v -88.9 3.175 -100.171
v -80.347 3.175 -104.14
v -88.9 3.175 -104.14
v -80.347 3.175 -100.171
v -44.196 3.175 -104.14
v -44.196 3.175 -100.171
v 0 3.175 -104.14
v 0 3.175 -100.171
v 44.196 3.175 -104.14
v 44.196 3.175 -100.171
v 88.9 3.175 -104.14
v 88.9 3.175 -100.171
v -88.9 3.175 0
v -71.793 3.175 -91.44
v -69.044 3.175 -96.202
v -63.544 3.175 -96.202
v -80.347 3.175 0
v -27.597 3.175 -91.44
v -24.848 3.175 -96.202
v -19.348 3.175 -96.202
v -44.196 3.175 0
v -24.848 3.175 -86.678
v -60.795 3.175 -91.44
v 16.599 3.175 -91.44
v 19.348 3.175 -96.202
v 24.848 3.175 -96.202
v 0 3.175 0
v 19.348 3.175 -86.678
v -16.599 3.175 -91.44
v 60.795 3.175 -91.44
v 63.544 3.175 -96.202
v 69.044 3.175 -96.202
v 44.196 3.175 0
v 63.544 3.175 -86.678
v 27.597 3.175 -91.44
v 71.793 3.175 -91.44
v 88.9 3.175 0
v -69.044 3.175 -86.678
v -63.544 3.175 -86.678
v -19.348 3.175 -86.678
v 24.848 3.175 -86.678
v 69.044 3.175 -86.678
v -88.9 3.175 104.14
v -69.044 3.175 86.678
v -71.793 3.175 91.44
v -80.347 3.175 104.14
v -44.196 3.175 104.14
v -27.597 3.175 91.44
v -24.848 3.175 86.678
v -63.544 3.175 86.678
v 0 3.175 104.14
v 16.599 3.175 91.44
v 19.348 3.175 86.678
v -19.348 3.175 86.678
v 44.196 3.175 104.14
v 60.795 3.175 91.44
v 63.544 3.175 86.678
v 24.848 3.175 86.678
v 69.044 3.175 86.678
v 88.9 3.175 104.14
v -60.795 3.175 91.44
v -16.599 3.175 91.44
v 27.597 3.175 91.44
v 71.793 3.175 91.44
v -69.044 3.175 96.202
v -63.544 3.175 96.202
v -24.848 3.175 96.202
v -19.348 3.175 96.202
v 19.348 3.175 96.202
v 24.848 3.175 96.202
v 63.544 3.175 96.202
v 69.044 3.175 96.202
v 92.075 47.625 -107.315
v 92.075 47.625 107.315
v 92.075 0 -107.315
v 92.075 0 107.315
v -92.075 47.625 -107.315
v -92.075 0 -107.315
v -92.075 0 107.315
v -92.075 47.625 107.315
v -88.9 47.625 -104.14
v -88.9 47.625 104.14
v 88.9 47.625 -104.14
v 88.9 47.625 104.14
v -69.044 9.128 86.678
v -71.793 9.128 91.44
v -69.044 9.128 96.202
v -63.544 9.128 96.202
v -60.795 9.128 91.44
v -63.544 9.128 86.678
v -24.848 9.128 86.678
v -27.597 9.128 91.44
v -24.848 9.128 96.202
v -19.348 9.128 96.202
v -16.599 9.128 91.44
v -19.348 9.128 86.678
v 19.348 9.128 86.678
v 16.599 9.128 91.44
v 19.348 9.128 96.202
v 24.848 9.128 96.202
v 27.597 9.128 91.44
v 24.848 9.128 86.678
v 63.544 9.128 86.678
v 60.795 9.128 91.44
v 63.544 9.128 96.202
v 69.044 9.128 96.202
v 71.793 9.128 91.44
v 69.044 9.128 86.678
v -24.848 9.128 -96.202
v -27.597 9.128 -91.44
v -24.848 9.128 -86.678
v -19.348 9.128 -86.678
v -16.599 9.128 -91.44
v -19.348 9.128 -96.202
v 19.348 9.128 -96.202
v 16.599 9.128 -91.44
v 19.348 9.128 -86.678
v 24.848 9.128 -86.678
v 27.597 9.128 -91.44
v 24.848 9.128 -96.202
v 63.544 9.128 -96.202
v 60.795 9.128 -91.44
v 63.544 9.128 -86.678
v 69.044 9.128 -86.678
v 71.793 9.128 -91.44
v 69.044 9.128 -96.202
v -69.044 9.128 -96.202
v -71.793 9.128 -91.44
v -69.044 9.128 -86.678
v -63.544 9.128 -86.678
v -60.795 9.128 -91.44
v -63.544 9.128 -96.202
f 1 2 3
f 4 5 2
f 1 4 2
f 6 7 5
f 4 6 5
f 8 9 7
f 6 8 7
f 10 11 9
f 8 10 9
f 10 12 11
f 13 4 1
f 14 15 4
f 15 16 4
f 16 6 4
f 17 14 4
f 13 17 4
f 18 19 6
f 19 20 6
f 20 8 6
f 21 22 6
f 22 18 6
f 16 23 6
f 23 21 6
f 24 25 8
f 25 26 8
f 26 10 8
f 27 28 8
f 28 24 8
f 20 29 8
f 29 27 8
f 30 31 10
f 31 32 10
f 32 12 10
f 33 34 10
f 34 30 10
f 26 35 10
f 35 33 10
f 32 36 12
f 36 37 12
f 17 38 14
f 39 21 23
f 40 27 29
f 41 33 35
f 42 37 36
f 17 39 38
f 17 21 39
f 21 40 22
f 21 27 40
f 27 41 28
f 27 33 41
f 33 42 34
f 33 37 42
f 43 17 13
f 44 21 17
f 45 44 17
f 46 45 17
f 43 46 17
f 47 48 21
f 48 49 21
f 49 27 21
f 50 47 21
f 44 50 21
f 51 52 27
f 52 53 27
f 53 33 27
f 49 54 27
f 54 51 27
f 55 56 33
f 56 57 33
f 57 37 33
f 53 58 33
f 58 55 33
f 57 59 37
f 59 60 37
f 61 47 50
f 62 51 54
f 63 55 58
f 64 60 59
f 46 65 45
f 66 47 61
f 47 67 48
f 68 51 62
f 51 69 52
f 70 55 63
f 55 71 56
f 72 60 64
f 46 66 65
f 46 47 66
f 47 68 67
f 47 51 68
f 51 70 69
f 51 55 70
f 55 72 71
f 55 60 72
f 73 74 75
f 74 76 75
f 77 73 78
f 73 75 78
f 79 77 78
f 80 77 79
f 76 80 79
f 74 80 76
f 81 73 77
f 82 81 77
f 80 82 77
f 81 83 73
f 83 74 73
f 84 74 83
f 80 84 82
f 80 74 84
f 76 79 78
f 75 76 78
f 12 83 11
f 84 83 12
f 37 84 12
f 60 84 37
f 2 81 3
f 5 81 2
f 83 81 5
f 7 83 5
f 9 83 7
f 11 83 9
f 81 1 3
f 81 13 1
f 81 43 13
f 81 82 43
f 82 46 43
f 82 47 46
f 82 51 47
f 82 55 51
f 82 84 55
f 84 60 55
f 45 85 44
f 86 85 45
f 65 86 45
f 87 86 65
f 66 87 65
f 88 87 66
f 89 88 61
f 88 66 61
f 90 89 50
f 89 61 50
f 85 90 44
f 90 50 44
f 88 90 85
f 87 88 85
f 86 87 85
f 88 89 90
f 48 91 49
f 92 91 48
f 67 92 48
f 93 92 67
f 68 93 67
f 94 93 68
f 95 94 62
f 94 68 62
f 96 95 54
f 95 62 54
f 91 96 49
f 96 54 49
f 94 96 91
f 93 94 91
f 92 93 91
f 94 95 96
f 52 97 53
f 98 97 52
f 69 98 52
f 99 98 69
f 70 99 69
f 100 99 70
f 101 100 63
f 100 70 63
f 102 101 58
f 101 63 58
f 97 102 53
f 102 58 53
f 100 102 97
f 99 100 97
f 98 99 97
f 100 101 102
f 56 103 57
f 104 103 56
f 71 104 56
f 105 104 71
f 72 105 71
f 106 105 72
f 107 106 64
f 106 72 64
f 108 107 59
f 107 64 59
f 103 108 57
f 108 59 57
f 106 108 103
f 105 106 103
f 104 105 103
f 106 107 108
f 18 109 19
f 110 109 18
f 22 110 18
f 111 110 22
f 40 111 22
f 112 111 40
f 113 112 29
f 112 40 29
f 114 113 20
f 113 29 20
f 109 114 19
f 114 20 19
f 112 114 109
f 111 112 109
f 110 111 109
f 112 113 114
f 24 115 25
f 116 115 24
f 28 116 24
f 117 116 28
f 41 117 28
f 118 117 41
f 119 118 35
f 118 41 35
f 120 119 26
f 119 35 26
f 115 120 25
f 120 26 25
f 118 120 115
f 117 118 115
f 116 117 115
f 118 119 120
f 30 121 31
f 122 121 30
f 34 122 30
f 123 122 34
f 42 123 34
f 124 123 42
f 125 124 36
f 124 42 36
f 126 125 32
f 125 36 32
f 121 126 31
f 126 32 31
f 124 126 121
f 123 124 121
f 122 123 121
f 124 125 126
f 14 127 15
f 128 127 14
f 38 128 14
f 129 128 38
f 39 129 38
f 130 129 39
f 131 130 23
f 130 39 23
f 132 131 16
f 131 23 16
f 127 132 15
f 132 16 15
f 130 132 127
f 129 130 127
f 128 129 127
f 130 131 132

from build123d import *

# Parameters (mm, degrees)
SKETCH1_W           = 184.15
SKETCH1_H           = 214.63
BOSS_EXTRUDE1_DEPTH = 47.625
SHELL1_T            = -3.175
BOSS_EXTRUDE2_DEPTH = 5.953125


with BuildPart() as part:
    # Sketch1 → Boss-Extrude1 (new body)
    with BuildSketch(Plane(origin=(0, 0, 0), x_dir=(1, 0, 0), z_dir=(0, 1, 0))):
        Rectangle(SKETCH1_W, SKETCH1_H)
    extrude(amount=BOSS_EXTRUDE1_DEPTH)

    # Shell1
    shell1_openings = [part.faces().sort_by_distance(p)[0] for p in [
        (0, 47.625, 0),
    ]]
    offset(amount=SHELL1_T, openings=shell1_openings, kind=Kind.INTERSECTION)

    # Sketch3 → Boss-Extrude2 (add)
    with BuildSketch(Plane(origin=(0, 3.175, 0), x_dir=(1, 0, 0), z_dir=(0, 1, 0))):
        Polygon((-27.597261314, -91.44), (-24.847630657, -96.2025), (-19.348369343, -96.2025), (-16.598738686, -91.44), (-19.348369343, -86.6775), (-24.847630657, -86.6775), align=None)
        Polygon((-71.793261314, -91.44), (-69.043630657, -96.2025), (-63.544369343, -96.2025), (-60.794738686, -91.44), (-63.544369343, -86.6775), (-69.043630657, -86.6775), align=None)
        Polygon((16.598738686, -91.44), (19.348369343, -96.2025), (24.847630657, -96.2025), (27.597261314, -91.44), (24.847630657, -86.6775), (19.348369343, -86.6775), align=None)
        Polygon((60.794738686, -91.44), (63.544369343, -96.2025), (69.043630657, -96.2025), (71.793261314, -91.44), (69.043630657, -86.6775), (63.544369343, -86.6775), align=None)
        Polygon((-27.597261314, 91.44), (-24.847630657, 86.6775), (-19.348369343, 86.6775), (-16.598738686, 91.44), (-19.348369343, 96.2025), (-24.847630657, 96.2025), align=None)
        Polygon((16.598738686, 91.44), (19.348369343, 86.6775), (24.847630657, 86.6775), (27.597261314, 91.44), (24.847630657, 96.2025), (19.348369343, 96.2025), align=None)
        Polygon((60.794738686, 91.44), (63.544369343, 86.6775), (69.043630657, 86.6775), (71.793261314, 91.44), (69.043630657, 96.2025), (63.544369343, 96.2025), align=None)
        Polygon((-71.793261314, 91.44), (-69.043630657, 86.6775), (-63.544369343, 86.6775), (-60.794738686, 91.44), (-63.544369343, 96.2025), (-69.043630657, 96.2025), align=None)
    extrude(amount=BOSS_EXTRUDE2_DEPTH)


solid = part.part
